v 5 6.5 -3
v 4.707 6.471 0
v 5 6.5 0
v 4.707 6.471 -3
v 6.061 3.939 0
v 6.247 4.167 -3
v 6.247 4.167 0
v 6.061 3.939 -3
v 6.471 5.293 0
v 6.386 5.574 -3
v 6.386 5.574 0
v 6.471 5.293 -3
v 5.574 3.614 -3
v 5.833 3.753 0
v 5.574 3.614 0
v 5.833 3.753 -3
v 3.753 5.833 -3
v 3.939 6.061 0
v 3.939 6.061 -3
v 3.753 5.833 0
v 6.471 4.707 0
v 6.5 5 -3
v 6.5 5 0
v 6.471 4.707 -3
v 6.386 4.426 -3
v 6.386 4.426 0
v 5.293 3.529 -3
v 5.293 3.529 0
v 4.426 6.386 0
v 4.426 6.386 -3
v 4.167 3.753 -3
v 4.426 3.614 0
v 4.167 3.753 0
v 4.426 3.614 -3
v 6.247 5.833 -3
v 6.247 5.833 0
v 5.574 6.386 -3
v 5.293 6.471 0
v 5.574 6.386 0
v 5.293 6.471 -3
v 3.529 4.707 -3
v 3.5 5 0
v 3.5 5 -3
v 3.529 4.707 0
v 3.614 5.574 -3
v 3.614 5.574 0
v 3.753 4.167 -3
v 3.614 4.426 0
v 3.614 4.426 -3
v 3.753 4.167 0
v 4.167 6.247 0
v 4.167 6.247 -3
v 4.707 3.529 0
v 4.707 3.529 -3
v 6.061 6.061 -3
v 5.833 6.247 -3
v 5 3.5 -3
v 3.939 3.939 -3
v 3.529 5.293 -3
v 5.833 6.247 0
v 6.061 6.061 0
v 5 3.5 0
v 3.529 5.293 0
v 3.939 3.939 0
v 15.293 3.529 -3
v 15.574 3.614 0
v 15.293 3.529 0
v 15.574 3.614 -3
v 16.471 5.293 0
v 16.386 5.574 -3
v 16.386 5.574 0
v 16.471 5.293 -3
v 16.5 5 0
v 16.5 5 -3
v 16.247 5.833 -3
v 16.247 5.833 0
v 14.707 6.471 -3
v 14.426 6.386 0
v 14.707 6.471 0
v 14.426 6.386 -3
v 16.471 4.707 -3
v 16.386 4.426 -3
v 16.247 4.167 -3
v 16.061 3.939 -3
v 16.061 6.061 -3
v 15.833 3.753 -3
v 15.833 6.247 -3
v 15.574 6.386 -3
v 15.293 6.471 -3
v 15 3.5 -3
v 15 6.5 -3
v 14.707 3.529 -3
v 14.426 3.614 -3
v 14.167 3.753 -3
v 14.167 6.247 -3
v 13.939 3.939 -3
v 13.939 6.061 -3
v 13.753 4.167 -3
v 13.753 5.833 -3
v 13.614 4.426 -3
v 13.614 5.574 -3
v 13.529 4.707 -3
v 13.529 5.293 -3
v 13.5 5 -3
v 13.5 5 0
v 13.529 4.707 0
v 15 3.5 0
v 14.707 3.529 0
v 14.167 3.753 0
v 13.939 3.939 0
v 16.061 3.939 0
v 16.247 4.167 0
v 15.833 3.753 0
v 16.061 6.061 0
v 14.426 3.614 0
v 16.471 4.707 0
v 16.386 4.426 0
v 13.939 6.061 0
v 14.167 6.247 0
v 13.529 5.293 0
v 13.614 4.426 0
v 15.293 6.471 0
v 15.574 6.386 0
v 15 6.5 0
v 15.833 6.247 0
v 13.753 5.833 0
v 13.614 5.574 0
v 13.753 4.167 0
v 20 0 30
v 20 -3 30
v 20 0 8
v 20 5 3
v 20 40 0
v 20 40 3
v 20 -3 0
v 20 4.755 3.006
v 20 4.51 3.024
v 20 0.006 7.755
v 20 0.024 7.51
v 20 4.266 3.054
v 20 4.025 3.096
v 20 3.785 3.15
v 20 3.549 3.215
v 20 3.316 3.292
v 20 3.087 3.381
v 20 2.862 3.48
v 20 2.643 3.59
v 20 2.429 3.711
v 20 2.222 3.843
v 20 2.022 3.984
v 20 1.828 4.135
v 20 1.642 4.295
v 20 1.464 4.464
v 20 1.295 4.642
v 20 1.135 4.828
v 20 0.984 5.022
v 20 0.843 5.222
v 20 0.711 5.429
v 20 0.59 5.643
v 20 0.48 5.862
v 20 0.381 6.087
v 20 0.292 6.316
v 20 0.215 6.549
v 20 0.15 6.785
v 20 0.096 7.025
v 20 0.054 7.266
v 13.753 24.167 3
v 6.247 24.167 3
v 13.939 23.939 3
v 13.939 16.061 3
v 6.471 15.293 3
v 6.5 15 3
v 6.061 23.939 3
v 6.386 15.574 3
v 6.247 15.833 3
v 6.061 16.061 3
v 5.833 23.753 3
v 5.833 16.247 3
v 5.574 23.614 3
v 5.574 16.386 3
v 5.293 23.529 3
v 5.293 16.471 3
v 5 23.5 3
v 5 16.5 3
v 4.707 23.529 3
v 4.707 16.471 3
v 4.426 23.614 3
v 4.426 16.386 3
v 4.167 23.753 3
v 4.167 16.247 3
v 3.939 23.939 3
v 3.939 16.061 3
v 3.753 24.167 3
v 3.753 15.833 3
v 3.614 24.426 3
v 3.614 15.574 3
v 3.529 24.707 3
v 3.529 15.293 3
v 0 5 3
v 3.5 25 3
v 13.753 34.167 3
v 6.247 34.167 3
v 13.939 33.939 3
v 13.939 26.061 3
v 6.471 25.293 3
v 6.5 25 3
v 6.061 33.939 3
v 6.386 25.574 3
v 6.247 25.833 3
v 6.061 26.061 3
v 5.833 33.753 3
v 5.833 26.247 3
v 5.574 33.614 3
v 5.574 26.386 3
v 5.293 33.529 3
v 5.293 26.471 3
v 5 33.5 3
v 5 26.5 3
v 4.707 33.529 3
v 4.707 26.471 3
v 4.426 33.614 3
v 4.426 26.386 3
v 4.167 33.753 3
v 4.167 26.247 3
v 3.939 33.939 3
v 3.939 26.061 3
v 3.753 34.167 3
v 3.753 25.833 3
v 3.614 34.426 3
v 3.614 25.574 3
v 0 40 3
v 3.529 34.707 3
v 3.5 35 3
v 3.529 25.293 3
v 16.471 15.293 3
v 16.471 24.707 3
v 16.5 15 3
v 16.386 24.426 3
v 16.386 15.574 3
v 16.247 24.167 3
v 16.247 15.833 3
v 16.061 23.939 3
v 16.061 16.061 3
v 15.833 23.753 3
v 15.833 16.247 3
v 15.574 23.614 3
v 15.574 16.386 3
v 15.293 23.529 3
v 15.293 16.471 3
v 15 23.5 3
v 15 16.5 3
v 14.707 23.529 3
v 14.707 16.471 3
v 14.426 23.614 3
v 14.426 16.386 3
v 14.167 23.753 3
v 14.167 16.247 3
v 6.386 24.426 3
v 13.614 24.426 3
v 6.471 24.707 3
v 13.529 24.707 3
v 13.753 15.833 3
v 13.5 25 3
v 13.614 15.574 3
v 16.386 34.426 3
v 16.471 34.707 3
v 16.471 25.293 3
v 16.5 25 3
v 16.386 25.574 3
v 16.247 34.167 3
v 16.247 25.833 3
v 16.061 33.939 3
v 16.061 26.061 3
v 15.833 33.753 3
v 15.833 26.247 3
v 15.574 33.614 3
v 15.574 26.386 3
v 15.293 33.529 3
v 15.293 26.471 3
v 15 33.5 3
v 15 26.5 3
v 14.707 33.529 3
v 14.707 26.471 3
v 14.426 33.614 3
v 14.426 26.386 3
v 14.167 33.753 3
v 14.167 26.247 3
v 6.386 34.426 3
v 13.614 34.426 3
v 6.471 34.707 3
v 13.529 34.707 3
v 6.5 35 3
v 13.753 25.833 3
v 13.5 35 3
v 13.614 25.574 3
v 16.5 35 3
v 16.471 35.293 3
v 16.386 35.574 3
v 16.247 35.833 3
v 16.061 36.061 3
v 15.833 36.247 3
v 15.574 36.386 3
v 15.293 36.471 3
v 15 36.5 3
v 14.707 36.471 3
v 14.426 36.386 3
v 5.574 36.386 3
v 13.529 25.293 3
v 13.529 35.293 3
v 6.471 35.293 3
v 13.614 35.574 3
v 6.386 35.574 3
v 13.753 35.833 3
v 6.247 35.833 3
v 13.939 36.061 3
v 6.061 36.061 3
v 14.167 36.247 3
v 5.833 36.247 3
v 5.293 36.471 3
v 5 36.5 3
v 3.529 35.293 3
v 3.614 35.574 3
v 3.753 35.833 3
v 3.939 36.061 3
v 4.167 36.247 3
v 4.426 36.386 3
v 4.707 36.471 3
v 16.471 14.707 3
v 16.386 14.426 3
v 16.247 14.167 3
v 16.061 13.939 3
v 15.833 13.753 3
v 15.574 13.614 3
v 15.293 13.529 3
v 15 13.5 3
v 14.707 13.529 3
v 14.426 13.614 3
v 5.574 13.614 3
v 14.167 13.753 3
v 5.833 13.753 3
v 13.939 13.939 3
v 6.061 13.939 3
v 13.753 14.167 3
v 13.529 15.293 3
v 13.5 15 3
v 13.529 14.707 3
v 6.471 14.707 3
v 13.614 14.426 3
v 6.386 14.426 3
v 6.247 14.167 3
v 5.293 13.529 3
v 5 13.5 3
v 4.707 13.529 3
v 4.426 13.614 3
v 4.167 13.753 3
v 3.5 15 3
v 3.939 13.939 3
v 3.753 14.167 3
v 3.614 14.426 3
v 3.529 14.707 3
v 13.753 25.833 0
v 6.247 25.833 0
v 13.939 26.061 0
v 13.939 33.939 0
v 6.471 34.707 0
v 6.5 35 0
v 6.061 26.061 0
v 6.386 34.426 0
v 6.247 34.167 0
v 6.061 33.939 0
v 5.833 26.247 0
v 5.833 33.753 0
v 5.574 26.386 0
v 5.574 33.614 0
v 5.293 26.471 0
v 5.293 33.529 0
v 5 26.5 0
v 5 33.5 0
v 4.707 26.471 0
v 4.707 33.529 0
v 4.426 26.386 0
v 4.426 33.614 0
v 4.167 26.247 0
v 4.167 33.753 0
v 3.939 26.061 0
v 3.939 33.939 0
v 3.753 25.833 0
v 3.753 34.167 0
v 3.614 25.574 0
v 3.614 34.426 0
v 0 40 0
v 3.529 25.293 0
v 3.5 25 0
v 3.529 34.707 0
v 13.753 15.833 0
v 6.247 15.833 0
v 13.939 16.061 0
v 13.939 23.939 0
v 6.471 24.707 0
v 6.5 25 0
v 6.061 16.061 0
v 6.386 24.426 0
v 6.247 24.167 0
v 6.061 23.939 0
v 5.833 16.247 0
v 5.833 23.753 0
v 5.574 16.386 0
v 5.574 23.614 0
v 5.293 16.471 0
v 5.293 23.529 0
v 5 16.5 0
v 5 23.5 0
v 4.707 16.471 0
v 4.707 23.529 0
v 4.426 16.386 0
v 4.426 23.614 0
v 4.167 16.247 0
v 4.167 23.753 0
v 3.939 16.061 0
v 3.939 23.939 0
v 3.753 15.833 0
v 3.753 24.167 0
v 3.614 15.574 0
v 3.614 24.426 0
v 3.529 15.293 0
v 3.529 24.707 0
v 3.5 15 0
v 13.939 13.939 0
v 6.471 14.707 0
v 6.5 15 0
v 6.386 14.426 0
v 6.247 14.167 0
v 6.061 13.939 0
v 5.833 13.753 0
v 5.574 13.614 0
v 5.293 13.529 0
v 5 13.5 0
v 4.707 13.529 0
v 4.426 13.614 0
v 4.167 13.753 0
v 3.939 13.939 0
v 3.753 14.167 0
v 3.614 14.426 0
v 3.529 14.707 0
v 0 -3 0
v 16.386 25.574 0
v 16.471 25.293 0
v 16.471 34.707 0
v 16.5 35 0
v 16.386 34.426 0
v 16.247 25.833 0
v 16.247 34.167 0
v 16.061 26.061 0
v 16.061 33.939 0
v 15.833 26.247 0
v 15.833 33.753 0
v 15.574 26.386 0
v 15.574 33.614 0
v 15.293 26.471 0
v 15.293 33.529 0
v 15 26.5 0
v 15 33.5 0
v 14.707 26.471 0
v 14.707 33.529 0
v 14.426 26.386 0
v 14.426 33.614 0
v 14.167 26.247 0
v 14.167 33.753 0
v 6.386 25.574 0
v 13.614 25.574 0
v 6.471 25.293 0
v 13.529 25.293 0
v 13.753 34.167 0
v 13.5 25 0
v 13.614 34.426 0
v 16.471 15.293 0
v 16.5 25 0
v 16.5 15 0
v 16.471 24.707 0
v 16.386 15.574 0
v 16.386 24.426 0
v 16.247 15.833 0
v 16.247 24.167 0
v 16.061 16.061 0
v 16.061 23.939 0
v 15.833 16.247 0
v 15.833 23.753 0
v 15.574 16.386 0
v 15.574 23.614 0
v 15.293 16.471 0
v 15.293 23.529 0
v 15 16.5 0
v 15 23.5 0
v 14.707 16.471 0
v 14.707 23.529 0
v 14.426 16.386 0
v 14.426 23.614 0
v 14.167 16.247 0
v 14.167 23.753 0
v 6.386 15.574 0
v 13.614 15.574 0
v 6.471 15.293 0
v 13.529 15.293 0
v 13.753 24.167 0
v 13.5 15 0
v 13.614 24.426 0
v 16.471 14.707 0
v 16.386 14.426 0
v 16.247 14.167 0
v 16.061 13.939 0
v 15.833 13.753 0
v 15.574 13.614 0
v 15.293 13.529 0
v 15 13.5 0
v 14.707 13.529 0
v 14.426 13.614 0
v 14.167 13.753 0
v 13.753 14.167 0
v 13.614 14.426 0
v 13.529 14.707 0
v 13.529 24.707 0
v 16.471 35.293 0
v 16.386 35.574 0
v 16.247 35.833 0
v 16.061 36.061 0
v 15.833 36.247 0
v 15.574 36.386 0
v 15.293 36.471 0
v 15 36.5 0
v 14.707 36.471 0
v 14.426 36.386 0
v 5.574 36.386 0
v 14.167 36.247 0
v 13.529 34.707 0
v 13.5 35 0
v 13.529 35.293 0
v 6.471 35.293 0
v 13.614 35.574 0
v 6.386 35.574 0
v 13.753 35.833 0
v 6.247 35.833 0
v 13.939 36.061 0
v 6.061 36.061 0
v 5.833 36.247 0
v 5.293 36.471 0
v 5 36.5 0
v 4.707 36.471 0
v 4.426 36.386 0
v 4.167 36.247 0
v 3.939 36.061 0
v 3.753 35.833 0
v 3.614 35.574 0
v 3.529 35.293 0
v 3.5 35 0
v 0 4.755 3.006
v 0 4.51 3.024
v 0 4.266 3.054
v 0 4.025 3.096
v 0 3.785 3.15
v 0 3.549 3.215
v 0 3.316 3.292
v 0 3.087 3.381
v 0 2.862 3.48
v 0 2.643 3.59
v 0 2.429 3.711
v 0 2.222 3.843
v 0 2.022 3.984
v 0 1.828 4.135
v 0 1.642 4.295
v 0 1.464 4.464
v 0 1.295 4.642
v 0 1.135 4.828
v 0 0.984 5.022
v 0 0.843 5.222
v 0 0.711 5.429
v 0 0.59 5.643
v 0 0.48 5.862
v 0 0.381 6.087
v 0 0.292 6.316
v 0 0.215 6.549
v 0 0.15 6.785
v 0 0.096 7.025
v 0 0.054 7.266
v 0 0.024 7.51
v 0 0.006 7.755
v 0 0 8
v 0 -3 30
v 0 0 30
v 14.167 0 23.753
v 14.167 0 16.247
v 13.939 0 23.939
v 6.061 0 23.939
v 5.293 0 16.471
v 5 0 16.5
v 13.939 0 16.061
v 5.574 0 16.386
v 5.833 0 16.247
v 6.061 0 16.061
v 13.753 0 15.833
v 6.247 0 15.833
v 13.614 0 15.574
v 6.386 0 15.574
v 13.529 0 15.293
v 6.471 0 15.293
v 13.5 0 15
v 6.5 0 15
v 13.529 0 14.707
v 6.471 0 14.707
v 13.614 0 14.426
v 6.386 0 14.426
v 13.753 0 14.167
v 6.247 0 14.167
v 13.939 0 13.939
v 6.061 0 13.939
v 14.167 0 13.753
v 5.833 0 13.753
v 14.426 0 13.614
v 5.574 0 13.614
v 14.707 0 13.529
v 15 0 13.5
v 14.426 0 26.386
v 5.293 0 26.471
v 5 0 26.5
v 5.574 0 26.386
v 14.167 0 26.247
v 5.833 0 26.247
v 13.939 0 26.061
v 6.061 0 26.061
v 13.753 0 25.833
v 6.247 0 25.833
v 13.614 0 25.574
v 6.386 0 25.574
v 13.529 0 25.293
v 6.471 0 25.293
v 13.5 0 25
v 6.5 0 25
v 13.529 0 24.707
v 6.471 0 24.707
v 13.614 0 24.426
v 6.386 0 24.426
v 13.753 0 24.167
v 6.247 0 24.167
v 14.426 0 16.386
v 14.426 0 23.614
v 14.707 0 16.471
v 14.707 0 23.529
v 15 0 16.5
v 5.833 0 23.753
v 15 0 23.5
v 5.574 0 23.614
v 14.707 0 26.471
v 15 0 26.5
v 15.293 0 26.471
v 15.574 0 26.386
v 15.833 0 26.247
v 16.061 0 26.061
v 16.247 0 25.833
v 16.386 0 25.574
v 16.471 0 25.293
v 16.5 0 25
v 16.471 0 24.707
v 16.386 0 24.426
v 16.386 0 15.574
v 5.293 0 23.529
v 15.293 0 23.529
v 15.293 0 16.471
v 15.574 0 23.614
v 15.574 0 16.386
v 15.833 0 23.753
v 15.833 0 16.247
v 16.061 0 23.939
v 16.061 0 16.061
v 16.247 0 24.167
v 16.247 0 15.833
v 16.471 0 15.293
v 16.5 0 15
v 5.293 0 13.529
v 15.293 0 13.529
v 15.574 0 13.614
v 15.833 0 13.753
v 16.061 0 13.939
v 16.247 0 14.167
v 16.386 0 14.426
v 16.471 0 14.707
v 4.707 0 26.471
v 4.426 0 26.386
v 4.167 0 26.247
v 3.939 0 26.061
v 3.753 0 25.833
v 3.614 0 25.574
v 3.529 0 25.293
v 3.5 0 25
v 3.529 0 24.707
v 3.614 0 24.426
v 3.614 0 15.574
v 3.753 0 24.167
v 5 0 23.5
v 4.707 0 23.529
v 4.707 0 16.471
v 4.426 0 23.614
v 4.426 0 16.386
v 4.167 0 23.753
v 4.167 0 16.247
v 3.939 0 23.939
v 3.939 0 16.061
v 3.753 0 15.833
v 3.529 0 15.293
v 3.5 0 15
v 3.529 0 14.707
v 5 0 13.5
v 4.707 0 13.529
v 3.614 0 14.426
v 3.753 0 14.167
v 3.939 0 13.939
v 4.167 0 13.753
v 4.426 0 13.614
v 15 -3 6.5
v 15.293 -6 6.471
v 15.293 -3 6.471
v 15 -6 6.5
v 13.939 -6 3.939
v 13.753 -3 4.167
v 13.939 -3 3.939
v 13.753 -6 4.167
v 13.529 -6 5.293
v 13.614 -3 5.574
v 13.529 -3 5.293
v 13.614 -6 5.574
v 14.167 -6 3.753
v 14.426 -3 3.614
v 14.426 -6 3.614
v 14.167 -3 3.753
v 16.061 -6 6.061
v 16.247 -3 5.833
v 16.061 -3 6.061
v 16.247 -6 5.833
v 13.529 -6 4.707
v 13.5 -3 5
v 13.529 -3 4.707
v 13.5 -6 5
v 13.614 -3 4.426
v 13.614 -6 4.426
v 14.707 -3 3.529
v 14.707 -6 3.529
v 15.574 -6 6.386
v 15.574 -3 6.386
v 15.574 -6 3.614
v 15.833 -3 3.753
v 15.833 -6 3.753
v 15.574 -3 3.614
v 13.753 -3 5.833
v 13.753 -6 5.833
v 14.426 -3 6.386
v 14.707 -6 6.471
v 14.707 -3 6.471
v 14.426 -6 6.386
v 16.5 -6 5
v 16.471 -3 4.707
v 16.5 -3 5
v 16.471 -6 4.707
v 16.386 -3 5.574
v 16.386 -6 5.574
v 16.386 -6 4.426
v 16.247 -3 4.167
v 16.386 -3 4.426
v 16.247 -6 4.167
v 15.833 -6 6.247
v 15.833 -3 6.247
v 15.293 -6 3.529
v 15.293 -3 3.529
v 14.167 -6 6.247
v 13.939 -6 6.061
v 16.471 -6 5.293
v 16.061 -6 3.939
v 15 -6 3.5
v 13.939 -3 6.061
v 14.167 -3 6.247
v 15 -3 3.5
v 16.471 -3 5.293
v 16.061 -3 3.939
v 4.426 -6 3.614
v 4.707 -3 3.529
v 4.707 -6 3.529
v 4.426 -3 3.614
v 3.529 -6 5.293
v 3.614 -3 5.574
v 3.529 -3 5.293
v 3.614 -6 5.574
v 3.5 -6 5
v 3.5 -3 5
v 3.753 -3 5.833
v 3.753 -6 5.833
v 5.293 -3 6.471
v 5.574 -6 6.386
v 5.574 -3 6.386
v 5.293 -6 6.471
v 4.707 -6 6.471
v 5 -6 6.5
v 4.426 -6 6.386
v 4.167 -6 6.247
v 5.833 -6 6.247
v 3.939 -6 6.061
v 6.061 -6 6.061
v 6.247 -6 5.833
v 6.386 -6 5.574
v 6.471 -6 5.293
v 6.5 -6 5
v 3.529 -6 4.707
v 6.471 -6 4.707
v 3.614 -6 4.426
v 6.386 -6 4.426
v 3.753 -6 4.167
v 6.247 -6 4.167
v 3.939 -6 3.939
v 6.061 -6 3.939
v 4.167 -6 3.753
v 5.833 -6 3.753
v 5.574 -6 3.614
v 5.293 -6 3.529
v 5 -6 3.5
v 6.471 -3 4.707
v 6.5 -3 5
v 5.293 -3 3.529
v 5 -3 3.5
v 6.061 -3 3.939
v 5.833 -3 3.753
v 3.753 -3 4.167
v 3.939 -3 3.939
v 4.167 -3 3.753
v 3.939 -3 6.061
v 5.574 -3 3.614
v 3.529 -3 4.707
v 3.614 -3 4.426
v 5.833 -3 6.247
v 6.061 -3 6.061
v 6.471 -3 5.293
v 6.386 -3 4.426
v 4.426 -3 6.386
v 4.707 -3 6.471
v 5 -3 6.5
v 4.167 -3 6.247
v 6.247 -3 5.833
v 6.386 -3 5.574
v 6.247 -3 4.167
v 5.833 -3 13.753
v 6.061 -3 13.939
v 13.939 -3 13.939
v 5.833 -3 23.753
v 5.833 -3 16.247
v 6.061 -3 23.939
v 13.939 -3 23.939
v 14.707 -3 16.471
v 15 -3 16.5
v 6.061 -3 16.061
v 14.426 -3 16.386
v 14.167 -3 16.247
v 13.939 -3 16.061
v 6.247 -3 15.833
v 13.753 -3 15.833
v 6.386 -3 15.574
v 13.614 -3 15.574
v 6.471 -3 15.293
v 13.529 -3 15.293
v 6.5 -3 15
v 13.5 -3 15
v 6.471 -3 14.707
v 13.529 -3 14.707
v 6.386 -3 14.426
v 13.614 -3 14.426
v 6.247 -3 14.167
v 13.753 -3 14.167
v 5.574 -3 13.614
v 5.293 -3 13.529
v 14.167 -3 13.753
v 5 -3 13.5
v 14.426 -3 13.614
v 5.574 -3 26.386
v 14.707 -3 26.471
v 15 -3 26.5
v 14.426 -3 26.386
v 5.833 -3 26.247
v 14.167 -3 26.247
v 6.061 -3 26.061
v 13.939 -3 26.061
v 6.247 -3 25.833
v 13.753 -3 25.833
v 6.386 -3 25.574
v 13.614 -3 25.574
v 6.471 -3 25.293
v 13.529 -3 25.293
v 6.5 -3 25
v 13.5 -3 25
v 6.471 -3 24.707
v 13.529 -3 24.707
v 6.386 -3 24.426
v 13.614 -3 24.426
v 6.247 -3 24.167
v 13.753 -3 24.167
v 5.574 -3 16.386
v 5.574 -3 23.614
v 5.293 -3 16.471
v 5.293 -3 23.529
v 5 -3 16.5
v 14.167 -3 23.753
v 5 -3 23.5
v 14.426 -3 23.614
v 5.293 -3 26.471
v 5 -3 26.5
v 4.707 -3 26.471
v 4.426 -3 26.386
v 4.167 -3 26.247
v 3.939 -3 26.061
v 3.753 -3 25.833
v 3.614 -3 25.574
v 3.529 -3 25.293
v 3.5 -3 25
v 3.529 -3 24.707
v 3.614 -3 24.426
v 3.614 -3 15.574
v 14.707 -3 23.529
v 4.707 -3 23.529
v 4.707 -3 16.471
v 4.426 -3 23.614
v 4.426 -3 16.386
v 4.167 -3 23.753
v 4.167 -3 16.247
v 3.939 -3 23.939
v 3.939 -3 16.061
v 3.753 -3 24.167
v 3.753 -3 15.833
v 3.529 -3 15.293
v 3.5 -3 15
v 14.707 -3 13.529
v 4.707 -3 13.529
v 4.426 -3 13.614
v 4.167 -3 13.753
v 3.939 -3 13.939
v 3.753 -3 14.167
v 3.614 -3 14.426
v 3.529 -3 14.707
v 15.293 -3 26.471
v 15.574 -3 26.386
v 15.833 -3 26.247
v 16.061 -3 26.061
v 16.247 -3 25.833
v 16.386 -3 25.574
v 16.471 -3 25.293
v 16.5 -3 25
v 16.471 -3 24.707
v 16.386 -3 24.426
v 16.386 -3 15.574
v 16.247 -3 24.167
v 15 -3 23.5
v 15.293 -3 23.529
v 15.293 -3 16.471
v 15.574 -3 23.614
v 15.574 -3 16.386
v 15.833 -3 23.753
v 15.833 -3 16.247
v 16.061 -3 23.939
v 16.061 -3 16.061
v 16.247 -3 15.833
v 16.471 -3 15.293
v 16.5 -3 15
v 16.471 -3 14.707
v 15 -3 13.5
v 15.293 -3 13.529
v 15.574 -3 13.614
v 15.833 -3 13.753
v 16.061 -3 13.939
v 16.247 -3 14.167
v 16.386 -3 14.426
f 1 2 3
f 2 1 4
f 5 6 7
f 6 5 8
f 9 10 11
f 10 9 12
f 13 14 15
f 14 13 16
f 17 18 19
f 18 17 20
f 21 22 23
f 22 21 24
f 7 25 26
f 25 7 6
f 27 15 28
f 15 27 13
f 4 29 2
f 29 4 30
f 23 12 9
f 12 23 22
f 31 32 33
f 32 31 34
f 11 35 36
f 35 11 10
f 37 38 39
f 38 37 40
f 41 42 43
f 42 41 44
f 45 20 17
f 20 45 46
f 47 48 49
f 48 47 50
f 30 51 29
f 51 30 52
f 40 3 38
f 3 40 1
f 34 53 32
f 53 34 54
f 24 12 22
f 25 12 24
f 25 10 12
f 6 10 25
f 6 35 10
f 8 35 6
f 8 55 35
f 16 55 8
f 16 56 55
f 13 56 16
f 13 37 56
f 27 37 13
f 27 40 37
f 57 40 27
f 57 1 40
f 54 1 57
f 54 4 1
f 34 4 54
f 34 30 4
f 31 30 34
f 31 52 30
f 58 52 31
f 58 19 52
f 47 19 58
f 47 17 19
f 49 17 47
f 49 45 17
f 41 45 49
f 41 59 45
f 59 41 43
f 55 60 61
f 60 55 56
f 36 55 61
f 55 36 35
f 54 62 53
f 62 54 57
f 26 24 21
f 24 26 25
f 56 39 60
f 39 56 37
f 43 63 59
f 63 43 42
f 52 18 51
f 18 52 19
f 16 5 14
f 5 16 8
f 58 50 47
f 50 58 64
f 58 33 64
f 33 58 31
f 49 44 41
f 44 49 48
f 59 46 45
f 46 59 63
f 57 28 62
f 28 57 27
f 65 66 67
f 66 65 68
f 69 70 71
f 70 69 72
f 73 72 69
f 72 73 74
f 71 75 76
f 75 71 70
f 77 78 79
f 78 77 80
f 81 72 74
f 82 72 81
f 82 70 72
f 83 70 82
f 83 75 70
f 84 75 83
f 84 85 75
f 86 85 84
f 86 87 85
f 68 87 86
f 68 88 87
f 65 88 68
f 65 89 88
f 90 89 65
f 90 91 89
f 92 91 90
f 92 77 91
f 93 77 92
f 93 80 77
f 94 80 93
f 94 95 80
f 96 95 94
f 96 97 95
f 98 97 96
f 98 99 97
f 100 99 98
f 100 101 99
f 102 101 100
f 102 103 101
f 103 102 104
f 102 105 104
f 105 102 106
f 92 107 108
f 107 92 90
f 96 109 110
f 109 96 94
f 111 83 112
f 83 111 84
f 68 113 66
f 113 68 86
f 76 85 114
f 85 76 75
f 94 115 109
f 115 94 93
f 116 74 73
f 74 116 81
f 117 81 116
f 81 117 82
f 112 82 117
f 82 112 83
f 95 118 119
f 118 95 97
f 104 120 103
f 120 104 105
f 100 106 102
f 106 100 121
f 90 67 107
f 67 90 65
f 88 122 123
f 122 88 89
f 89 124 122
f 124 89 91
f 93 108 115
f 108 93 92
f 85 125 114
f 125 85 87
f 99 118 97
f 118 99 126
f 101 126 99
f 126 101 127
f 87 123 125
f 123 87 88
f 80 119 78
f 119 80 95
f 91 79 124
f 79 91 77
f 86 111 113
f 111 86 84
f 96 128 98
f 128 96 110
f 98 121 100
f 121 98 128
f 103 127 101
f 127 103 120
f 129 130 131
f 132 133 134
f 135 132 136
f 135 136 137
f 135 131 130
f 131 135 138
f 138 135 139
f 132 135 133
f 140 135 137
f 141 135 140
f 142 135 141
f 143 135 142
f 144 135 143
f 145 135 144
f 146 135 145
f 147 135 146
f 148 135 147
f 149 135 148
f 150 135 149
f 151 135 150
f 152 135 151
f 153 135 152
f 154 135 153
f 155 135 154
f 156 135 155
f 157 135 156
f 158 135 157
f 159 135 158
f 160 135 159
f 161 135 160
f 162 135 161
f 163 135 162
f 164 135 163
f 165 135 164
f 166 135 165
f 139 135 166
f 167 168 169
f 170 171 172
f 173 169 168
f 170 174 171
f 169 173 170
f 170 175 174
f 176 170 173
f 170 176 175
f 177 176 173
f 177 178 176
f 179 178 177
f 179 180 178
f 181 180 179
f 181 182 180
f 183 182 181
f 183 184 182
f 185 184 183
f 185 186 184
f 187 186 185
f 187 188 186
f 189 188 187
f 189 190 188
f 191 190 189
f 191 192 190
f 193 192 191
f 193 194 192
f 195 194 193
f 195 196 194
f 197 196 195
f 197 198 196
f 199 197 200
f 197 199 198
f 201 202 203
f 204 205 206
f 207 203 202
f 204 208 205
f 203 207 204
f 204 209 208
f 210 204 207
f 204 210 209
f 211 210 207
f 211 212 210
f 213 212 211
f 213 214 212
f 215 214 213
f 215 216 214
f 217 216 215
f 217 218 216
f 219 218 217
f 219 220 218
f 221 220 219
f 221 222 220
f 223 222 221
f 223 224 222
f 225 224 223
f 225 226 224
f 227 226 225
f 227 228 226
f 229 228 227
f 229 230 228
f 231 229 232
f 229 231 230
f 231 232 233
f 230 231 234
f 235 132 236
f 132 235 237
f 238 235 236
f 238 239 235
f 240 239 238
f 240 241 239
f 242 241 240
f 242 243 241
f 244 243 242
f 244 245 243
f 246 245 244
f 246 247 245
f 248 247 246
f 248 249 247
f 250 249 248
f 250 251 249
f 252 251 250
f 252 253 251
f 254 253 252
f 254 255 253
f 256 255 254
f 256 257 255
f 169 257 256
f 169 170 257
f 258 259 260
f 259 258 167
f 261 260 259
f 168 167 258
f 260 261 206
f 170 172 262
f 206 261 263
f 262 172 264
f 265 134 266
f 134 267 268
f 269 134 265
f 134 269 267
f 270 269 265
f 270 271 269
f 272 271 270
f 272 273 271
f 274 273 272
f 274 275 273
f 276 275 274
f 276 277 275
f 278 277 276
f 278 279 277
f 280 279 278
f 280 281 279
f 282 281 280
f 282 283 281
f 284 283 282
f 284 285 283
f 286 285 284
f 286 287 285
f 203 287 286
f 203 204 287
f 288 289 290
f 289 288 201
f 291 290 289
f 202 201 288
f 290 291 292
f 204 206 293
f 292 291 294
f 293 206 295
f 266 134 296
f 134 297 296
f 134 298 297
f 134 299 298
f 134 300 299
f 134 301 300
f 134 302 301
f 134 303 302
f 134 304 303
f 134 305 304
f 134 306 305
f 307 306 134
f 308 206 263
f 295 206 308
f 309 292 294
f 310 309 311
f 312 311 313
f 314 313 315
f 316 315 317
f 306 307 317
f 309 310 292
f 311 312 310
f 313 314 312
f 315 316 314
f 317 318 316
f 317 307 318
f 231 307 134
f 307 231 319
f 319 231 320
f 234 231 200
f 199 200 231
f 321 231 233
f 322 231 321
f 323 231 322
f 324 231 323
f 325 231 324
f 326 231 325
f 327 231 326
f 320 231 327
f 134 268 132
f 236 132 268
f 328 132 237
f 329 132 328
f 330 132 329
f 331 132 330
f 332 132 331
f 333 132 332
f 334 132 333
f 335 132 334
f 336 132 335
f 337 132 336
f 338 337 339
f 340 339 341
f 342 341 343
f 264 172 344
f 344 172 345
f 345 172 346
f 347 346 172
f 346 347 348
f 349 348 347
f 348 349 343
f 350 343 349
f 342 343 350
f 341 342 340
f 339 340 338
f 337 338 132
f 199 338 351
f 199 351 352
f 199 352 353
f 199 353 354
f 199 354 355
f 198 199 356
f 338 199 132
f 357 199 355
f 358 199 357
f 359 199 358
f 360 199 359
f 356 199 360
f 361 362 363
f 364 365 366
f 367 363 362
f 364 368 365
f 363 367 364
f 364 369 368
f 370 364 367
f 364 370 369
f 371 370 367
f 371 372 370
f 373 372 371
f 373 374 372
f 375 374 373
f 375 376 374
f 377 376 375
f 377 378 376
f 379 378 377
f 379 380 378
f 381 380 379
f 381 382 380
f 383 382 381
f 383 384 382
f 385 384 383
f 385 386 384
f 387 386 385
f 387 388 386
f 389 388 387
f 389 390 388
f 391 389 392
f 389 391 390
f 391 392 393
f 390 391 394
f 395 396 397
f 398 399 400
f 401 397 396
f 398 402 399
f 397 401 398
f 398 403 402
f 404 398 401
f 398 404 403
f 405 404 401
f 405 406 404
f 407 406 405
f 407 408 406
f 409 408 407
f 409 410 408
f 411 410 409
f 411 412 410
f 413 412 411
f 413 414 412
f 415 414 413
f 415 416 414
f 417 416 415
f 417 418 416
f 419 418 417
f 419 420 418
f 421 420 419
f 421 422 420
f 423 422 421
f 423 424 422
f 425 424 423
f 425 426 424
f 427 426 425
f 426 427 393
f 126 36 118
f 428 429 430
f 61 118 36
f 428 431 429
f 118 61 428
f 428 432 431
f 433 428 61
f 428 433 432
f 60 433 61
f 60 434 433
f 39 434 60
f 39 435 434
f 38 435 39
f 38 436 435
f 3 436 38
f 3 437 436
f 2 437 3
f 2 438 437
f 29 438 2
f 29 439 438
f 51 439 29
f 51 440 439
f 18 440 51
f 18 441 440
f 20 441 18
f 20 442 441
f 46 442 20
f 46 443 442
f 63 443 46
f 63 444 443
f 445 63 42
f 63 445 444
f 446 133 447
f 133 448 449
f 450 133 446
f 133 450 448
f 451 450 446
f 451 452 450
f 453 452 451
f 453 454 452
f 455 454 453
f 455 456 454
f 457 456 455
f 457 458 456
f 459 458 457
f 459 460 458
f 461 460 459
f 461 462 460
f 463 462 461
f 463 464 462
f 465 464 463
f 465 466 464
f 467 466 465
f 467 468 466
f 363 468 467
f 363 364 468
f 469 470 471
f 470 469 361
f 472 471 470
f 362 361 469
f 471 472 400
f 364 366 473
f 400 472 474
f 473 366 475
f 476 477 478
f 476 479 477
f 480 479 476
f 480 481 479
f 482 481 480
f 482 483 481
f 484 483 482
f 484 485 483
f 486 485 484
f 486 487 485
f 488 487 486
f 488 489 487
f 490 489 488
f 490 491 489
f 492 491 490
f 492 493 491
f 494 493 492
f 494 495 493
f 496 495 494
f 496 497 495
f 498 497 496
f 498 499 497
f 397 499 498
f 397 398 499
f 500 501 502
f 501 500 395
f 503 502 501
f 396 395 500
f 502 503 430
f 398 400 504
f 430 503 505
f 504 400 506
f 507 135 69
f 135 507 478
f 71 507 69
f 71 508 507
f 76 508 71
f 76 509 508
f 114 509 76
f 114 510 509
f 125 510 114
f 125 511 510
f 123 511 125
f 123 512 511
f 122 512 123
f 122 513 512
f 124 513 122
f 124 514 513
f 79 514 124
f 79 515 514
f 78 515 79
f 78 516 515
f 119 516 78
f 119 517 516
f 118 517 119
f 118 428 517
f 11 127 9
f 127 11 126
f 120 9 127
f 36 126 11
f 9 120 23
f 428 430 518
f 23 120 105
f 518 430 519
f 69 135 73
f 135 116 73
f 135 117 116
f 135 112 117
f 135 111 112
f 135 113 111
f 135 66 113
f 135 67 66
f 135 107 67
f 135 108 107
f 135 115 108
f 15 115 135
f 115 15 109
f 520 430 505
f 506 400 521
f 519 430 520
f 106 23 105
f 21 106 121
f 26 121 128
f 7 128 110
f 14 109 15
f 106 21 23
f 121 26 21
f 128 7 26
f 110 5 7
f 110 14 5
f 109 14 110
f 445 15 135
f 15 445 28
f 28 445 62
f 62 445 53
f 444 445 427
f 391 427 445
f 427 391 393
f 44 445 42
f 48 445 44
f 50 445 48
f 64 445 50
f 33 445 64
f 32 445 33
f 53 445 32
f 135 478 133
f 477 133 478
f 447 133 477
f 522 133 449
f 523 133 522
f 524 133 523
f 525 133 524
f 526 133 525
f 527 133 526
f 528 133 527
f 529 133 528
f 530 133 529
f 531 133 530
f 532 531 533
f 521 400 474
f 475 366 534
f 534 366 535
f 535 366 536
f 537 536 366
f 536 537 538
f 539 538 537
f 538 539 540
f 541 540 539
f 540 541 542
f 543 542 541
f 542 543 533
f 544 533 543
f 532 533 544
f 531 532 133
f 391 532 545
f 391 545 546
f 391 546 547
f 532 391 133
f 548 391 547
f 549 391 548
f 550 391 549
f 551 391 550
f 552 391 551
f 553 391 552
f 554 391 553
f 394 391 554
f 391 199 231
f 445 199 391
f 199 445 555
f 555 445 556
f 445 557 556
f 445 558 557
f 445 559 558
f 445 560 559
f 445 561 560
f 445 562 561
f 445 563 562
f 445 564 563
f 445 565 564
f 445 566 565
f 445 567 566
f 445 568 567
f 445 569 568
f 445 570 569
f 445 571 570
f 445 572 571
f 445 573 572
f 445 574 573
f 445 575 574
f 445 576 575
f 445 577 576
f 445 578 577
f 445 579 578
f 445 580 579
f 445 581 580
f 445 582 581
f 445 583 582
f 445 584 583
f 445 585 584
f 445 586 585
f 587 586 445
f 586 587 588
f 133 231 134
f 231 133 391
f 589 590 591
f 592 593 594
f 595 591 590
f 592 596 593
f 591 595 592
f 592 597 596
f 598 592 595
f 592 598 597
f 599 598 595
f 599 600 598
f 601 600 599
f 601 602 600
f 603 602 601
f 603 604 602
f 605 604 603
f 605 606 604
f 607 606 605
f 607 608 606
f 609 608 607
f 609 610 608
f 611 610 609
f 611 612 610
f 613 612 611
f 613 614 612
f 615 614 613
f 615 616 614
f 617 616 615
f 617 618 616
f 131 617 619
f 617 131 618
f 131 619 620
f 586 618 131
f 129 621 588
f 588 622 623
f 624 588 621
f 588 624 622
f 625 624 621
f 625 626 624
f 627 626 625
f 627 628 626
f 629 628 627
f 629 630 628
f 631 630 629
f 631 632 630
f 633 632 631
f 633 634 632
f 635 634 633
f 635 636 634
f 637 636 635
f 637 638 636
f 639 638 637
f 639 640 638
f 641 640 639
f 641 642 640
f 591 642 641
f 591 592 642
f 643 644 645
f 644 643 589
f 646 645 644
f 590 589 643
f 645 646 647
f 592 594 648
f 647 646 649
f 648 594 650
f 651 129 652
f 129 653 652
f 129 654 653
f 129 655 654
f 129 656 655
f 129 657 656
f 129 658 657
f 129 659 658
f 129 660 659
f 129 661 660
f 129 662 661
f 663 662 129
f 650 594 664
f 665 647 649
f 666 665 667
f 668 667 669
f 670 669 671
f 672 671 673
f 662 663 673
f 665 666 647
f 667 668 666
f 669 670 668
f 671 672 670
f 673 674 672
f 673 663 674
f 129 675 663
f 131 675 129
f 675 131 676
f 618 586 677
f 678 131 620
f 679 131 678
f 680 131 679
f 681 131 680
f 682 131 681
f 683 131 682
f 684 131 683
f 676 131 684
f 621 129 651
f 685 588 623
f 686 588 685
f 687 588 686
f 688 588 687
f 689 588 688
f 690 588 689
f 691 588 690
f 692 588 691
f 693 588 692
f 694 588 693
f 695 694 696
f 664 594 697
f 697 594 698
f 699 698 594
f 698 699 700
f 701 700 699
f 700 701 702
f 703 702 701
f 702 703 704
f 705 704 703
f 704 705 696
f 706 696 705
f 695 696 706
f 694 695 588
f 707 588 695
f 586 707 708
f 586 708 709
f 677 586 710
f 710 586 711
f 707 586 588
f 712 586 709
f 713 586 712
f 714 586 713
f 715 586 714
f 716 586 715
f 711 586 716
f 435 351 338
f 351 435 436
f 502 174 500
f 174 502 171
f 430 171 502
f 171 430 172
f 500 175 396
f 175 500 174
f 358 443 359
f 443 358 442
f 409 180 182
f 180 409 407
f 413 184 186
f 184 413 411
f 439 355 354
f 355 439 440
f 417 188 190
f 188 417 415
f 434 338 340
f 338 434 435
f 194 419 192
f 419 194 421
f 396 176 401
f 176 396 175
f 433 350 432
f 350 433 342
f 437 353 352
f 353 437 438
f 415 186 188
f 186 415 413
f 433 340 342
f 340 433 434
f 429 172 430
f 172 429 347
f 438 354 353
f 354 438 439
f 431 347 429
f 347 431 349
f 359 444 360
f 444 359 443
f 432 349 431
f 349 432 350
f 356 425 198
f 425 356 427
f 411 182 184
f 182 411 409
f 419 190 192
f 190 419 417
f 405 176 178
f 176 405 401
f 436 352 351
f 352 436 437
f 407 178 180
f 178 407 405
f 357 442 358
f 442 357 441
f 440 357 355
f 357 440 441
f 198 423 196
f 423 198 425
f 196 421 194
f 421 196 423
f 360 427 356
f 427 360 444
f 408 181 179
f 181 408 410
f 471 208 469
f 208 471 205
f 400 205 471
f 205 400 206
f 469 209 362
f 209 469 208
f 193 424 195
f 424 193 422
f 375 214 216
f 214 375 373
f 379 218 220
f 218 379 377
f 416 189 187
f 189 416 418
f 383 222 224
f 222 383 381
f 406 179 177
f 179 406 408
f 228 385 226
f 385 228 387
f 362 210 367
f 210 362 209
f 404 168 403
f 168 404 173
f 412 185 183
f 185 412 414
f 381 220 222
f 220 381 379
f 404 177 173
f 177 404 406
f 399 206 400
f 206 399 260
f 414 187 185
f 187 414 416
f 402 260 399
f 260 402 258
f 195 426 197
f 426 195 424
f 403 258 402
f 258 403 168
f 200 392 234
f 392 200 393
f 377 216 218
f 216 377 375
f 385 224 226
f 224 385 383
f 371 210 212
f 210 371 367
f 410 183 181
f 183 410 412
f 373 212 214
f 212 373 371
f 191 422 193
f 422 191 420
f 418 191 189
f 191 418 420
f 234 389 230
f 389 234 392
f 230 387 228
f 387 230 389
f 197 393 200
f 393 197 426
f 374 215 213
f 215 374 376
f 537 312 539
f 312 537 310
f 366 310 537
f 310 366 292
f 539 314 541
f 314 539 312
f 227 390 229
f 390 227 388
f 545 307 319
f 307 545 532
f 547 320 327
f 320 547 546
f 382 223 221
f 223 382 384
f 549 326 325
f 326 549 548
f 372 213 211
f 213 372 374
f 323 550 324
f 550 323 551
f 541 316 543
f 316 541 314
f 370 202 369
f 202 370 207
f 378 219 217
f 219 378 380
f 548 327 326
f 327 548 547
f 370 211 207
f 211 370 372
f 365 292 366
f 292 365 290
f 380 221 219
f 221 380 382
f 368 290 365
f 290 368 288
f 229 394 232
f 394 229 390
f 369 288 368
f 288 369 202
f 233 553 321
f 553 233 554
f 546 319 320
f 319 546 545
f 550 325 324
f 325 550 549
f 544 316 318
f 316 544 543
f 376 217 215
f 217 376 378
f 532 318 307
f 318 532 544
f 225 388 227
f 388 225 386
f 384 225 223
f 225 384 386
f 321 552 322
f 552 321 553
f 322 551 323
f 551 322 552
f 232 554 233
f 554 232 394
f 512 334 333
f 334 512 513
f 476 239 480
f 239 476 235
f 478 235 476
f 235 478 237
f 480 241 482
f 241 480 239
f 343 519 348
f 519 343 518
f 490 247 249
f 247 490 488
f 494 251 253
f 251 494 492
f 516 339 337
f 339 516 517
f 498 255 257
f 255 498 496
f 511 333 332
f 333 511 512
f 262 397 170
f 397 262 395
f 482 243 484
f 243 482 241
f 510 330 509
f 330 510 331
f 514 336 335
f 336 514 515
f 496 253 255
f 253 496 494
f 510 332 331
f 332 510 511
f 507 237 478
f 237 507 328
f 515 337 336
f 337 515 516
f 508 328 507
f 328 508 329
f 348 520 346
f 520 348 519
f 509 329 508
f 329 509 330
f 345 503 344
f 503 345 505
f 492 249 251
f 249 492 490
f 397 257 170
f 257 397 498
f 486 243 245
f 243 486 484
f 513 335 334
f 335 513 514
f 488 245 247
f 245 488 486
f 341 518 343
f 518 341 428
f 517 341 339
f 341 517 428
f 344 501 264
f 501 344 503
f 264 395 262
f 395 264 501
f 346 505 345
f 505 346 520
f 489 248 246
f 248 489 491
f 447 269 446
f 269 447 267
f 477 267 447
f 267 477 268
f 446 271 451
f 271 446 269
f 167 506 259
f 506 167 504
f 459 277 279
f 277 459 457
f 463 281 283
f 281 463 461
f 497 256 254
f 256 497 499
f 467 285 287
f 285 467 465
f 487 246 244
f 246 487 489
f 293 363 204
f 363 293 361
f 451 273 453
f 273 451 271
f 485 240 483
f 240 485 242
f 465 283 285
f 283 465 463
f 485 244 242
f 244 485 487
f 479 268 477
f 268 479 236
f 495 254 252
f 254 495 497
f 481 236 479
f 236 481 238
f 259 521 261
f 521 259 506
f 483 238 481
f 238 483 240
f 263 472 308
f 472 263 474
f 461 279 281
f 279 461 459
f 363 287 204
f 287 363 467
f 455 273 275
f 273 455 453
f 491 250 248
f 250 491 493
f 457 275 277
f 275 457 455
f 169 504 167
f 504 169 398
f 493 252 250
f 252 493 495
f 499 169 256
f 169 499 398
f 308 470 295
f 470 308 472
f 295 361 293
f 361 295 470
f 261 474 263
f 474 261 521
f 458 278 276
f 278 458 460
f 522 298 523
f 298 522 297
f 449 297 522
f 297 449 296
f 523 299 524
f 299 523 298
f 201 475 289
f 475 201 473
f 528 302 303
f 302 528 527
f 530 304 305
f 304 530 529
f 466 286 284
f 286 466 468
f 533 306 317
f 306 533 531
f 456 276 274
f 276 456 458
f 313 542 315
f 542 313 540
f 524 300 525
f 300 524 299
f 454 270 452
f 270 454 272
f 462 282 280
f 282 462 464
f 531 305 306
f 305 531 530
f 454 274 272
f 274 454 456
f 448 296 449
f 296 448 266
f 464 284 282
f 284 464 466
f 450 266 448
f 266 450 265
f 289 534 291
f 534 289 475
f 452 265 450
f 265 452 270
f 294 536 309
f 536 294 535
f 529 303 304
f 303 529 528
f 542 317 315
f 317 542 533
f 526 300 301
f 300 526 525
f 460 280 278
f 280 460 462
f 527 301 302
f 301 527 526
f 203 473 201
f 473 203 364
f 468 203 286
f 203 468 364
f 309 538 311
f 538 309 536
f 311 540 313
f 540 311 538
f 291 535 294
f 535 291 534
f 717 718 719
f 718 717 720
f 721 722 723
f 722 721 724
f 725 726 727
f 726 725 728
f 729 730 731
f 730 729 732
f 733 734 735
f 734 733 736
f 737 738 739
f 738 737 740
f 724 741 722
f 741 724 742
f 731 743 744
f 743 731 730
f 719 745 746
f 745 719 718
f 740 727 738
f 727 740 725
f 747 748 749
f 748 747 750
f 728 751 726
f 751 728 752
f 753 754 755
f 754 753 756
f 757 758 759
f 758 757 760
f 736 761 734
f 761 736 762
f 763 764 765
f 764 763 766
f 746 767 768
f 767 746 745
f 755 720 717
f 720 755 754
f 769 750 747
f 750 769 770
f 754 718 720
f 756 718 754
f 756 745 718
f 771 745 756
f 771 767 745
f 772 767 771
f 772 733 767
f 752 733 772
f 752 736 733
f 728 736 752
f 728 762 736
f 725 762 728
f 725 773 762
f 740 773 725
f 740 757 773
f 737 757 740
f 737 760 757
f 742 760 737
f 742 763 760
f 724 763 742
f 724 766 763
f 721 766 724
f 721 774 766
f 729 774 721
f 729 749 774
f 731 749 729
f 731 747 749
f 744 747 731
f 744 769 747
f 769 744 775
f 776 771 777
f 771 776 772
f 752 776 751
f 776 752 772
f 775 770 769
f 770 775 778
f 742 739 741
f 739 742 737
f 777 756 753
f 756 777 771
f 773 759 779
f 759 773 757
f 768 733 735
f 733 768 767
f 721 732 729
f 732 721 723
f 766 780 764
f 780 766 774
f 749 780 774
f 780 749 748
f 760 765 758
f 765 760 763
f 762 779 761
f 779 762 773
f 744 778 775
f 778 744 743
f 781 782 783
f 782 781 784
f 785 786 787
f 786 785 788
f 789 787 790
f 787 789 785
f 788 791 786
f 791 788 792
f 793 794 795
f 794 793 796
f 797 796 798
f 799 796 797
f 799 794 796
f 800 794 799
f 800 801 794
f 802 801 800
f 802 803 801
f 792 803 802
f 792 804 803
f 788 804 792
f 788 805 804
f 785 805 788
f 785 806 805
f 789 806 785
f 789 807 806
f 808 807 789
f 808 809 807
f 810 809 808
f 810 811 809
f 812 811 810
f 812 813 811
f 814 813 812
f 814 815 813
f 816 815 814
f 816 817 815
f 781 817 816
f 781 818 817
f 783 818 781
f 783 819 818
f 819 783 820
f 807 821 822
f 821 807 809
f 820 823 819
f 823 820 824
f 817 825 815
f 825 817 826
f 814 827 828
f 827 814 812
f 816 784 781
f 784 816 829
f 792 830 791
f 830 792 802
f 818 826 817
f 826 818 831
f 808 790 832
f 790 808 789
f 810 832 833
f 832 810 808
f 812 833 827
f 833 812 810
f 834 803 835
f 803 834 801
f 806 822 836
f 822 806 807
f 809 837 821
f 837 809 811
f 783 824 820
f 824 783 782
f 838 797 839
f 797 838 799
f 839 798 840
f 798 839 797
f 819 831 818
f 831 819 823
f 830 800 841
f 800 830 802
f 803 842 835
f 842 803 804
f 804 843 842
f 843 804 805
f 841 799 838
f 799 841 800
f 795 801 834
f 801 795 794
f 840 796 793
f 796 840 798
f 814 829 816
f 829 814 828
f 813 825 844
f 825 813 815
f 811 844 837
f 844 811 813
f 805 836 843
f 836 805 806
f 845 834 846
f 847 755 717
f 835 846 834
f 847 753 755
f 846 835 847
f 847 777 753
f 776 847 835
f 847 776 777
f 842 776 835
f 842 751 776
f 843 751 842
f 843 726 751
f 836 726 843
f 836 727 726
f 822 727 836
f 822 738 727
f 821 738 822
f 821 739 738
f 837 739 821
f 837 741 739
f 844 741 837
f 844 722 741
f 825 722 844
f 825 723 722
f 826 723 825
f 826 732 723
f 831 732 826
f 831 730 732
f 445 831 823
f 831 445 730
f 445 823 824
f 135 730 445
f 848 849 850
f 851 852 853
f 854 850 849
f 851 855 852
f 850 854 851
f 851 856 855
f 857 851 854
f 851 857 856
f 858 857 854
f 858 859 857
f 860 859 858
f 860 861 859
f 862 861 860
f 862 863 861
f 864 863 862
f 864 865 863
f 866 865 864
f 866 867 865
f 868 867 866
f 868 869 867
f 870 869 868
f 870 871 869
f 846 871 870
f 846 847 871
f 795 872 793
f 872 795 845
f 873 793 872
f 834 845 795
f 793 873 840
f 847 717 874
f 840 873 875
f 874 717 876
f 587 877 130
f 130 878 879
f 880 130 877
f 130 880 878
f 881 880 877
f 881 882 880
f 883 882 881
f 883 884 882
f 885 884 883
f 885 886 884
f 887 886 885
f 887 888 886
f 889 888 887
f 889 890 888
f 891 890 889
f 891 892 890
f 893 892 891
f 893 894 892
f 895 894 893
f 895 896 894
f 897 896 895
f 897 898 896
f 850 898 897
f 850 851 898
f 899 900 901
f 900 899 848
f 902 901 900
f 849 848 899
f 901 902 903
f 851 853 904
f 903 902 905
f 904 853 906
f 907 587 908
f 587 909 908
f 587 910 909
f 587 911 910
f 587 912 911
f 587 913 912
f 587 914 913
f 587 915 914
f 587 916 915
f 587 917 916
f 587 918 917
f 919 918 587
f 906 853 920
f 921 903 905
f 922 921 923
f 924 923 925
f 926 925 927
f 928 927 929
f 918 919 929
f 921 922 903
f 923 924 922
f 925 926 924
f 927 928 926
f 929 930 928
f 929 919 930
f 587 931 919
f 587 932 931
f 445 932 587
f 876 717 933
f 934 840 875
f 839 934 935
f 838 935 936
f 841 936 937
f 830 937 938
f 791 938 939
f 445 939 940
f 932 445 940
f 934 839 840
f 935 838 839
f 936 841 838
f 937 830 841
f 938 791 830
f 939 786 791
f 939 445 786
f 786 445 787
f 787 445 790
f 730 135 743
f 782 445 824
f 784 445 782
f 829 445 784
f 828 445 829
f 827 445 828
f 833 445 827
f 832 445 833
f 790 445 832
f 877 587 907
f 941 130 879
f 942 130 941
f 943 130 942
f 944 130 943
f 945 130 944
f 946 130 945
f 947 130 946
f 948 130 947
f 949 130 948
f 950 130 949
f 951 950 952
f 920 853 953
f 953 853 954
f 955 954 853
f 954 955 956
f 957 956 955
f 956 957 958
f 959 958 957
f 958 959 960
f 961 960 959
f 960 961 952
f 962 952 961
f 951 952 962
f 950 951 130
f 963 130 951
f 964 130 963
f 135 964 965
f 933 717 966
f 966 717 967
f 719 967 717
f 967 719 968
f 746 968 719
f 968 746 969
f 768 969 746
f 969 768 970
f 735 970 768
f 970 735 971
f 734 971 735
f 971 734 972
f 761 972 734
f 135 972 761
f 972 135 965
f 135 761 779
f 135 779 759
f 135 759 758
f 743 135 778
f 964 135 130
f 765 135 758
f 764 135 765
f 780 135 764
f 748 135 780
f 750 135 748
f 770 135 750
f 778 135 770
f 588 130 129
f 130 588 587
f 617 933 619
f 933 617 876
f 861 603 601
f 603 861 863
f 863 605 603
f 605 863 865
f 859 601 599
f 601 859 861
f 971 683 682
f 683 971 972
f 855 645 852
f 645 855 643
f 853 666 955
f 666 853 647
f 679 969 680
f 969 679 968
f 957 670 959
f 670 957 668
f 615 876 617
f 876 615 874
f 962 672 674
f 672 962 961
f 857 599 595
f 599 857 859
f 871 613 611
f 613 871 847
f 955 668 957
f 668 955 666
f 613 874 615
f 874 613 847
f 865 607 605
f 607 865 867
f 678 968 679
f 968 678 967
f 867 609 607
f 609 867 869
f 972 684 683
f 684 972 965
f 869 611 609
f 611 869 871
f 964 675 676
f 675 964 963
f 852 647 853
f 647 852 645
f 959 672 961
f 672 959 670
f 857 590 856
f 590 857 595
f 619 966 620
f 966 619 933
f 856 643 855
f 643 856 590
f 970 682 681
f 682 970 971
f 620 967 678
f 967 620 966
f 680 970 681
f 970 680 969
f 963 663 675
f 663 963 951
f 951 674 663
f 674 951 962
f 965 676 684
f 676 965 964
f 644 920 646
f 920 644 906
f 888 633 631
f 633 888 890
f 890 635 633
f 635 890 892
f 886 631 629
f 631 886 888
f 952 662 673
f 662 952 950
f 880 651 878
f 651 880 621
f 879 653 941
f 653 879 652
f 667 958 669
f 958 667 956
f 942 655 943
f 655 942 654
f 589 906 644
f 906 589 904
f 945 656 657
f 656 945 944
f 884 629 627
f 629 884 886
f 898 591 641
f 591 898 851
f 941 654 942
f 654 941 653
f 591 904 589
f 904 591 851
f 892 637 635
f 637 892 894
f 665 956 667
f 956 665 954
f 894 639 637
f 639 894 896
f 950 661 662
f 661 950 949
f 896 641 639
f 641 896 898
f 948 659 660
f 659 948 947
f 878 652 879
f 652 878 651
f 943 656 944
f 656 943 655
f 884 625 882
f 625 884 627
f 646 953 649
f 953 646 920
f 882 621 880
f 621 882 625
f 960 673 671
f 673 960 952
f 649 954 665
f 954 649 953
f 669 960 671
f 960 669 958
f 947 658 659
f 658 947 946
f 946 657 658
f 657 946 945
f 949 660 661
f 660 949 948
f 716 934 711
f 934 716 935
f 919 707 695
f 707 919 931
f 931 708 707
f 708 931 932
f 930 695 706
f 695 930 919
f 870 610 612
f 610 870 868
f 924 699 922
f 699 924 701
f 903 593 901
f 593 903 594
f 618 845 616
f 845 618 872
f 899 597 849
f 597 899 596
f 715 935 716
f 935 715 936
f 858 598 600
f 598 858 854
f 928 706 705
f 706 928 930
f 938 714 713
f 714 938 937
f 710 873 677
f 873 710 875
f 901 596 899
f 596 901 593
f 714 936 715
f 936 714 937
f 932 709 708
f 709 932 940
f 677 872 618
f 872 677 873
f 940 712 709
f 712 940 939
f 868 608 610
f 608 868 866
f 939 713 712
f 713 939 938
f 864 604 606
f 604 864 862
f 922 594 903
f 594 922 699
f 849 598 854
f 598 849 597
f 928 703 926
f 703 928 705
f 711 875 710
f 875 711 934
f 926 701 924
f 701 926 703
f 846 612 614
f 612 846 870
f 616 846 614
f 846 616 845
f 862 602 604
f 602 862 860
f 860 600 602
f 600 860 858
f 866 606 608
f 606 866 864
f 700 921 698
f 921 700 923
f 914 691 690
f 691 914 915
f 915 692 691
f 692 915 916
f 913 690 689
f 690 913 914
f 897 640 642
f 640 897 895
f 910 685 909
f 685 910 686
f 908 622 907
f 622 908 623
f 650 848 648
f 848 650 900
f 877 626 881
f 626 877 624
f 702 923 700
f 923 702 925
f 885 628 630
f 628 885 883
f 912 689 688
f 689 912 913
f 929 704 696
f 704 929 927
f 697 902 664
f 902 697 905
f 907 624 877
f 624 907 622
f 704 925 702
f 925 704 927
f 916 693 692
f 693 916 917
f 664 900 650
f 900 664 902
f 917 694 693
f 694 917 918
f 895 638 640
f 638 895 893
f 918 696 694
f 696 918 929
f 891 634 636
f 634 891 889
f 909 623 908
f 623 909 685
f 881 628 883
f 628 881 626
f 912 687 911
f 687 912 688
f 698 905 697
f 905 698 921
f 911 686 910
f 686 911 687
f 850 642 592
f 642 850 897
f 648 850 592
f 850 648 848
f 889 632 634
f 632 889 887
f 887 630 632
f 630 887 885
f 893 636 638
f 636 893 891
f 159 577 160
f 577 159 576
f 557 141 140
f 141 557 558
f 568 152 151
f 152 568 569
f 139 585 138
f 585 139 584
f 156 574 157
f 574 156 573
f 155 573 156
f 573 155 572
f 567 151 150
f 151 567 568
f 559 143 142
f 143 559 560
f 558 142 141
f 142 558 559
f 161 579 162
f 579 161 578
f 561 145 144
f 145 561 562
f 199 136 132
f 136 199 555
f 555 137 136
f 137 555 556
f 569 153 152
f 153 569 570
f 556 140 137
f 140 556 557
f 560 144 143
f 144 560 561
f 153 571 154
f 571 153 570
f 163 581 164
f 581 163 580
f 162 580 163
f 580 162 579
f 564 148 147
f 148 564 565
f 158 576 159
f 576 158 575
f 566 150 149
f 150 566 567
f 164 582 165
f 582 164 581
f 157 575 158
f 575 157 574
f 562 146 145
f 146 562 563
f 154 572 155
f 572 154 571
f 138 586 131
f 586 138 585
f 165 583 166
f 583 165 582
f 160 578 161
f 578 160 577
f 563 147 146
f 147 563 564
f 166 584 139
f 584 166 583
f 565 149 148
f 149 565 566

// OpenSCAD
hole_size = 3;
hole_spacing = 10;
material_thickness = 3;
stud_size = 3;
inner_bevel = 5;

function plate_size(holes) = hole_spacing  * holes ;

module plate(holes_w, holes_h)
{
    w = plate_size(holes_w);
    h = plate_size(holes_h);
    difference() {
        union() {
        cube([w,h, material_thickness],center=false);
            for (x=[0:holes_w-1]) {
                translate([x*hole_spacing + hole_spacing/2, hole_spacing/2, -stud_size])
                cylinder(d=hole_size, h = stud_size+material_thickness/2, $fn=32);
            }
        }
    
    for (x=[0:holes_w-1]) {
        for (y=[1:holes_h-1]) {
            translate([x*hole_spacing + hole_spacing/2,
                            y*hole_spacing + hole_spacing/2,
                            -material_thickness])
                cylinder(d=hole_size, h = material_thickness*3, $fn=32);
        }
    }
}
}

holes_x = 2;
holes_y_base = 4;
holes_y_side = 3;
union(){
plate(holes_x, holes_y_base);
rotate([90,0,180])
    translate([-plate_size(2),0,-material_thickness])
        plate(holes_x, holes_y_side);
translate([0, 0,material_thickness])
    {
       difference() {
           
            cube([plate_size(holes_x), inner_bevel, inner_bevel]);
           rotate([0,90,0])
           translate([-inner_bevel, inner_bevel, -1])
           cylinder(d=inner_bevel*2, h = plate_size(holes_x)+2, $fn=128);
       }
    }
}
